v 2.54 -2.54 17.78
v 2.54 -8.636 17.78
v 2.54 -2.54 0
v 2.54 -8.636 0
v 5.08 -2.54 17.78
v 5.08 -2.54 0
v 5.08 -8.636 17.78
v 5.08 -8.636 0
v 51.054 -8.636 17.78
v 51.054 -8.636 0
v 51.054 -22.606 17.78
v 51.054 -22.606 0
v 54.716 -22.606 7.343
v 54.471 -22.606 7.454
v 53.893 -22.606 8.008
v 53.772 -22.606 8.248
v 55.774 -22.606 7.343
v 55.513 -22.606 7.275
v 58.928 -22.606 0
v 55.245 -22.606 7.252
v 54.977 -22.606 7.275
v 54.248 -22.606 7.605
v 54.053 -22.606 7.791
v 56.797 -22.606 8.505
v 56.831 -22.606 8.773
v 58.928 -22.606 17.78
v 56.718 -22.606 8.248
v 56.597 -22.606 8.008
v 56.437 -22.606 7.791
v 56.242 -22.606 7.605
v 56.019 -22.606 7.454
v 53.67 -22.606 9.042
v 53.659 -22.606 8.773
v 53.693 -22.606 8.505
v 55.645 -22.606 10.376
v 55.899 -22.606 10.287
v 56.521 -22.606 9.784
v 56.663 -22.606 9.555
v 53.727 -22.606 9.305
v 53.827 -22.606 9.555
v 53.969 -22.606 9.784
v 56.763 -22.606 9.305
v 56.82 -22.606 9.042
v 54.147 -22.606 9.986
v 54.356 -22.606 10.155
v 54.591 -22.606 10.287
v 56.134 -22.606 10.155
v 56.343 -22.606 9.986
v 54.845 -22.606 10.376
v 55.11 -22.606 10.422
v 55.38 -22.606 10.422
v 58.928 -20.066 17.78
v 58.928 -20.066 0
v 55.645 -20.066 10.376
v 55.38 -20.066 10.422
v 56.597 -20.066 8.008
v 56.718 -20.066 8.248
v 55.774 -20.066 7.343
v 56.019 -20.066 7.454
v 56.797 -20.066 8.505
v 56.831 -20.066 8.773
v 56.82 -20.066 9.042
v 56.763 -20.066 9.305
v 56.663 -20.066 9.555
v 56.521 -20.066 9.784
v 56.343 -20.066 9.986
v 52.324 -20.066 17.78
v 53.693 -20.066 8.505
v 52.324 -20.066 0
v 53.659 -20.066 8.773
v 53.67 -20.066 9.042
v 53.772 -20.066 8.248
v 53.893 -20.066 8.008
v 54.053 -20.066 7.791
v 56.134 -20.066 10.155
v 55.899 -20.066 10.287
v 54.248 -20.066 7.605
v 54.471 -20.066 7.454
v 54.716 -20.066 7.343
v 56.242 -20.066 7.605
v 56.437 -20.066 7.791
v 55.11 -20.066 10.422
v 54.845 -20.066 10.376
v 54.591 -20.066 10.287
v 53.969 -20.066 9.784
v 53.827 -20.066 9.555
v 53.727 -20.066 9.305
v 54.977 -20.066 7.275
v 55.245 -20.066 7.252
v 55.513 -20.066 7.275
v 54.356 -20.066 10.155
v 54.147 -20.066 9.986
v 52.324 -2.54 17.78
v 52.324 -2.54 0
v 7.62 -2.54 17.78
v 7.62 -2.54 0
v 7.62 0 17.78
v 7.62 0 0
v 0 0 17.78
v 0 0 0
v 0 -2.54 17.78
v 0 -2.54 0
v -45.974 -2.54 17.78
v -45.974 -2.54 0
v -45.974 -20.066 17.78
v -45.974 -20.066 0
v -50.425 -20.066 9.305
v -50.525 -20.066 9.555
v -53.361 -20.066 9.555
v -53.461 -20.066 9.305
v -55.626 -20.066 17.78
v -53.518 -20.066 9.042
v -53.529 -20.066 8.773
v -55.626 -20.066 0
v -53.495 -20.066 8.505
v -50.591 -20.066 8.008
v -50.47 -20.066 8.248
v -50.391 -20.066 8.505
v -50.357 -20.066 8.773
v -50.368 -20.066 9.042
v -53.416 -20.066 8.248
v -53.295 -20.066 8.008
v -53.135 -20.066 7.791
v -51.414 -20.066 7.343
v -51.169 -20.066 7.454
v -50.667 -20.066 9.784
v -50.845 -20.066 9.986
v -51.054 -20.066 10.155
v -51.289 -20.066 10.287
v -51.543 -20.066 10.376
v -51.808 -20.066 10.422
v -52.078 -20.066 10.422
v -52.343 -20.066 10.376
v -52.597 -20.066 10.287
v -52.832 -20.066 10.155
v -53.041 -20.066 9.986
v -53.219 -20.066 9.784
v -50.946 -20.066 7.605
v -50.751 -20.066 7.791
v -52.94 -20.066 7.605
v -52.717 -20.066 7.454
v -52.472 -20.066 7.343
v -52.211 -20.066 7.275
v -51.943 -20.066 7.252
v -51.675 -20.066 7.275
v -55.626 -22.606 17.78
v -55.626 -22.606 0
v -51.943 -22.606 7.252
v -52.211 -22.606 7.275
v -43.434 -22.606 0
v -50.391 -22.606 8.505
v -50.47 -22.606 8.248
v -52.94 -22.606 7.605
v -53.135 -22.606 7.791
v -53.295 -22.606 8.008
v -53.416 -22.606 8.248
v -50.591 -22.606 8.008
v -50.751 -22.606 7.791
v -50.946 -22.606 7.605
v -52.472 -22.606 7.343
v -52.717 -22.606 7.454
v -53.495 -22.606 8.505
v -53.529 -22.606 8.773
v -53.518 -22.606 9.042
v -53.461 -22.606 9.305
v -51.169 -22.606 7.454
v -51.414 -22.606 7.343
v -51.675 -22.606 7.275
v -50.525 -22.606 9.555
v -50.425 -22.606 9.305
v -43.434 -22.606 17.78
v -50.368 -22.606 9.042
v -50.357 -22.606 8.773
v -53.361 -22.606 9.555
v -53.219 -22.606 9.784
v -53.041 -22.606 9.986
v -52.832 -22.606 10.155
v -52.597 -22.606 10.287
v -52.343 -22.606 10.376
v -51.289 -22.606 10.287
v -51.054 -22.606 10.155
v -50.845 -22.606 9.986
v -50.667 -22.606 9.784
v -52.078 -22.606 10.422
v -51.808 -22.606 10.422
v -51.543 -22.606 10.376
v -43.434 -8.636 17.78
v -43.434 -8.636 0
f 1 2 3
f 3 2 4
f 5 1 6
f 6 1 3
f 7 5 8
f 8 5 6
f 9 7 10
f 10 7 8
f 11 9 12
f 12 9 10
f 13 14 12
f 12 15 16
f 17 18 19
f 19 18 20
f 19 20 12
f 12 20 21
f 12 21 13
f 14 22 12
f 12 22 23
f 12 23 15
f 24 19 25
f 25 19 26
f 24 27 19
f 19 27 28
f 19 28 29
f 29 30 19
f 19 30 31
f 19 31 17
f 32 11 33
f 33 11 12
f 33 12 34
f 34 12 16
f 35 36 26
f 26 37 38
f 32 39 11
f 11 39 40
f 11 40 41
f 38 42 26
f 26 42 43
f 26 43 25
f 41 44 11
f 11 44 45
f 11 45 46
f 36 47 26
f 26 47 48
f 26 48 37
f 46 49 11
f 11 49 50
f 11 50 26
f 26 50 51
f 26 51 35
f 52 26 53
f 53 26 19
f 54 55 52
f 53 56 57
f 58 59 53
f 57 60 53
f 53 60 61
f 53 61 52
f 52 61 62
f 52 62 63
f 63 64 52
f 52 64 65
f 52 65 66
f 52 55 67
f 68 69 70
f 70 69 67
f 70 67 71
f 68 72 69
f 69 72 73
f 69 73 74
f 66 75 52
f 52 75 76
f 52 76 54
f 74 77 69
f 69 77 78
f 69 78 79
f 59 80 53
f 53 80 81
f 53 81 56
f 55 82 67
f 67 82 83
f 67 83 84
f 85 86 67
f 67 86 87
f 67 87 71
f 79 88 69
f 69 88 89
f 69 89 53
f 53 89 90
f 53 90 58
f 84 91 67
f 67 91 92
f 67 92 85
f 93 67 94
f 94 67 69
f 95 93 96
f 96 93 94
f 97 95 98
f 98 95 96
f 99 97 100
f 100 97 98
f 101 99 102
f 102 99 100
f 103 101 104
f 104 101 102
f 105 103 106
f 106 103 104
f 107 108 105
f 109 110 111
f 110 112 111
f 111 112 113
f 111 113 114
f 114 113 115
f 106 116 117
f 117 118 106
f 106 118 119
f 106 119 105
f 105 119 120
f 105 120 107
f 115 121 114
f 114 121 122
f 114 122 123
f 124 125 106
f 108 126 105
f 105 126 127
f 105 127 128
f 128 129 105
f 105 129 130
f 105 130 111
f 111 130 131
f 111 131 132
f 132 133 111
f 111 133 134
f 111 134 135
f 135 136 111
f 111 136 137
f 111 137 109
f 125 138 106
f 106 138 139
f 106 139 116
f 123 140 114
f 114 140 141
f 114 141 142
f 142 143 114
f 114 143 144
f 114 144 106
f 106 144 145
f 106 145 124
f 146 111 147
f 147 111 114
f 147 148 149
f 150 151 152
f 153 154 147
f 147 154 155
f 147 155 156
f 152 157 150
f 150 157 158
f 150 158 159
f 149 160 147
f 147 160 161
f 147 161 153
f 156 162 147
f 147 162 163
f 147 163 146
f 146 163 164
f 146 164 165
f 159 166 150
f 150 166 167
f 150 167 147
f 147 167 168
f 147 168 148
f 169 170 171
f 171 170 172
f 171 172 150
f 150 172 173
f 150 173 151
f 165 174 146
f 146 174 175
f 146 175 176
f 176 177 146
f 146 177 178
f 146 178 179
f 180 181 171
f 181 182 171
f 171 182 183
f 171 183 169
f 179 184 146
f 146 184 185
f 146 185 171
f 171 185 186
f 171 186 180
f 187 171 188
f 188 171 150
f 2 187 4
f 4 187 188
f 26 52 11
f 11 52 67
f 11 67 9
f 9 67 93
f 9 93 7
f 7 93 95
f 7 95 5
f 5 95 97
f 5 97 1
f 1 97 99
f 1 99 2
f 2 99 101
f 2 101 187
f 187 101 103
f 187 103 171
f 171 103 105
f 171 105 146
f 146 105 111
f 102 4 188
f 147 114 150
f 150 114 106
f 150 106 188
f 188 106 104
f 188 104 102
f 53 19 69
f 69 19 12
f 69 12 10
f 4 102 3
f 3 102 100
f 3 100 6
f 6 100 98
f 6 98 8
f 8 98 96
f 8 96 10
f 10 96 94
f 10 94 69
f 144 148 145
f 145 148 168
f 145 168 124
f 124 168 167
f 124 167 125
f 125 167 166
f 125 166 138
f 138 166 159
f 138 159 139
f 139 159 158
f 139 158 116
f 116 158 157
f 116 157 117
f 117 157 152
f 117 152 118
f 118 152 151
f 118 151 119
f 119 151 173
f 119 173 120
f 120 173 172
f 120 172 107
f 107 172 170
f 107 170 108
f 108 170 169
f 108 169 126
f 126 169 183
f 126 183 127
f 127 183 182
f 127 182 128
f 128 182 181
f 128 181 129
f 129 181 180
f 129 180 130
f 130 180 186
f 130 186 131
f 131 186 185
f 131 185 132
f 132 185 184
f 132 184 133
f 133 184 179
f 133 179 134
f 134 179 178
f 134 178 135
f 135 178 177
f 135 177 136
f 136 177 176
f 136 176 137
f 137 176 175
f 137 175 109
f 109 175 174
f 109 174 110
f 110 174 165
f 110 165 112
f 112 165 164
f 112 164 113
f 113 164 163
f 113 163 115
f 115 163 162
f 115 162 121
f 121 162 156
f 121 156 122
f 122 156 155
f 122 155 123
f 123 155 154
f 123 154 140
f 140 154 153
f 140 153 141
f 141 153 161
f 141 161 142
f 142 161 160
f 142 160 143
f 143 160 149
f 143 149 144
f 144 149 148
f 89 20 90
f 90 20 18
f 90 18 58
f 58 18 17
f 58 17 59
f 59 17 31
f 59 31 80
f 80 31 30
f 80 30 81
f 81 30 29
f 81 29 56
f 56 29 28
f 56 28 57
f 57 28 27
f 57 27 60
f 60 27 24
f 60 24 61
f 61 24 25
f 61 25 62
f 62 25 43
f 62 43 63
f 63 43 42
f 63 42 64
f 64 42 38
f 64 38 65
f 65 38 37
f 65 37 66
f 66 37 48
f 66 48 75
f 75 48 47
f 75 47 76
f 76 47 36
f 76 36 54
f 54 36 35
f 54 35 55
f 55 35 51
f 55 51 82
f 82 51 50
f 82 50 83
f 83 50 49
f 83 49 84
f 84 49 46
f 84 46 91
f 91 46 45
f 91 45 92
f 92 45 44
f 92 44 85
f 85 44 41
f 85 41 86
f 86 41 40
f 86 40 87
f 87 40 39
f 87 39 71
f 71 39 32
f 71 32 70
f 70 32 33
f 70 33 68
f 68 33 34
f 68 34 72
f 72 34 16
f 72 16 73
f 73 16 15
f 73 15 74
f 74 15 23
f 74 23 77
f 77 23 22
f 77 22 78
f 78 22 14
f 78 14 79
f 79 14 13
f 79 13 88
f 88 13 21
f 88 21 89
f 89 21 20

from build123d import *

# Parameters (mm, degrees)
BOSS_EXTRUDE1_DEPTH = 17.78
SKETCH4_R           = 1.5875
CUT_EXTRUDE1_DEPTH  = 66.571859971


with BuildPart() as part:
    # Sketch3 → Boss-Extrude1 (new body)
    with BuildSketch(Plane.XY):
        Polygon((2.54, -2.54), (5.08, -2.54), (5.08, -8.636), (51.054, -8.636), (51.054, -22.606), (58.928, -22.606), (58.928, -20.066), (52.324, -20.066), (52.324, -2.54), (7.62, -2.54), (7.62, 0), (0, 0), (0, -2.54), (-45.974, -2.54), (-45.974, -20.066), (-55.626, -20.066), (-55.626, -22.606), (-43.434, -22.606), (-43.434, -8.636), (2.54, -8.636), align=None)
    extrude(amount=BOSS_EXTRUDE1_DEPTH)

    # Sketch4 → Cut-Extrude1 (cut, through all)
    with BuildSketch(Plane.XZ.offset(22.606)):
        with Locations(Location((-51.943, 8.839936473, 0), (0, 0, 270))):
            Circle(SKETCH4_R)
        with Locations(Location((55.245, 8.839936473, 0), (0, 0, 270))):
            Circle(SKETCH4_R)
    extrude(amount=-CUT_EXTRUDE1_DEPTH, mode=Mode.SUBTRACT)


solid = part.part
